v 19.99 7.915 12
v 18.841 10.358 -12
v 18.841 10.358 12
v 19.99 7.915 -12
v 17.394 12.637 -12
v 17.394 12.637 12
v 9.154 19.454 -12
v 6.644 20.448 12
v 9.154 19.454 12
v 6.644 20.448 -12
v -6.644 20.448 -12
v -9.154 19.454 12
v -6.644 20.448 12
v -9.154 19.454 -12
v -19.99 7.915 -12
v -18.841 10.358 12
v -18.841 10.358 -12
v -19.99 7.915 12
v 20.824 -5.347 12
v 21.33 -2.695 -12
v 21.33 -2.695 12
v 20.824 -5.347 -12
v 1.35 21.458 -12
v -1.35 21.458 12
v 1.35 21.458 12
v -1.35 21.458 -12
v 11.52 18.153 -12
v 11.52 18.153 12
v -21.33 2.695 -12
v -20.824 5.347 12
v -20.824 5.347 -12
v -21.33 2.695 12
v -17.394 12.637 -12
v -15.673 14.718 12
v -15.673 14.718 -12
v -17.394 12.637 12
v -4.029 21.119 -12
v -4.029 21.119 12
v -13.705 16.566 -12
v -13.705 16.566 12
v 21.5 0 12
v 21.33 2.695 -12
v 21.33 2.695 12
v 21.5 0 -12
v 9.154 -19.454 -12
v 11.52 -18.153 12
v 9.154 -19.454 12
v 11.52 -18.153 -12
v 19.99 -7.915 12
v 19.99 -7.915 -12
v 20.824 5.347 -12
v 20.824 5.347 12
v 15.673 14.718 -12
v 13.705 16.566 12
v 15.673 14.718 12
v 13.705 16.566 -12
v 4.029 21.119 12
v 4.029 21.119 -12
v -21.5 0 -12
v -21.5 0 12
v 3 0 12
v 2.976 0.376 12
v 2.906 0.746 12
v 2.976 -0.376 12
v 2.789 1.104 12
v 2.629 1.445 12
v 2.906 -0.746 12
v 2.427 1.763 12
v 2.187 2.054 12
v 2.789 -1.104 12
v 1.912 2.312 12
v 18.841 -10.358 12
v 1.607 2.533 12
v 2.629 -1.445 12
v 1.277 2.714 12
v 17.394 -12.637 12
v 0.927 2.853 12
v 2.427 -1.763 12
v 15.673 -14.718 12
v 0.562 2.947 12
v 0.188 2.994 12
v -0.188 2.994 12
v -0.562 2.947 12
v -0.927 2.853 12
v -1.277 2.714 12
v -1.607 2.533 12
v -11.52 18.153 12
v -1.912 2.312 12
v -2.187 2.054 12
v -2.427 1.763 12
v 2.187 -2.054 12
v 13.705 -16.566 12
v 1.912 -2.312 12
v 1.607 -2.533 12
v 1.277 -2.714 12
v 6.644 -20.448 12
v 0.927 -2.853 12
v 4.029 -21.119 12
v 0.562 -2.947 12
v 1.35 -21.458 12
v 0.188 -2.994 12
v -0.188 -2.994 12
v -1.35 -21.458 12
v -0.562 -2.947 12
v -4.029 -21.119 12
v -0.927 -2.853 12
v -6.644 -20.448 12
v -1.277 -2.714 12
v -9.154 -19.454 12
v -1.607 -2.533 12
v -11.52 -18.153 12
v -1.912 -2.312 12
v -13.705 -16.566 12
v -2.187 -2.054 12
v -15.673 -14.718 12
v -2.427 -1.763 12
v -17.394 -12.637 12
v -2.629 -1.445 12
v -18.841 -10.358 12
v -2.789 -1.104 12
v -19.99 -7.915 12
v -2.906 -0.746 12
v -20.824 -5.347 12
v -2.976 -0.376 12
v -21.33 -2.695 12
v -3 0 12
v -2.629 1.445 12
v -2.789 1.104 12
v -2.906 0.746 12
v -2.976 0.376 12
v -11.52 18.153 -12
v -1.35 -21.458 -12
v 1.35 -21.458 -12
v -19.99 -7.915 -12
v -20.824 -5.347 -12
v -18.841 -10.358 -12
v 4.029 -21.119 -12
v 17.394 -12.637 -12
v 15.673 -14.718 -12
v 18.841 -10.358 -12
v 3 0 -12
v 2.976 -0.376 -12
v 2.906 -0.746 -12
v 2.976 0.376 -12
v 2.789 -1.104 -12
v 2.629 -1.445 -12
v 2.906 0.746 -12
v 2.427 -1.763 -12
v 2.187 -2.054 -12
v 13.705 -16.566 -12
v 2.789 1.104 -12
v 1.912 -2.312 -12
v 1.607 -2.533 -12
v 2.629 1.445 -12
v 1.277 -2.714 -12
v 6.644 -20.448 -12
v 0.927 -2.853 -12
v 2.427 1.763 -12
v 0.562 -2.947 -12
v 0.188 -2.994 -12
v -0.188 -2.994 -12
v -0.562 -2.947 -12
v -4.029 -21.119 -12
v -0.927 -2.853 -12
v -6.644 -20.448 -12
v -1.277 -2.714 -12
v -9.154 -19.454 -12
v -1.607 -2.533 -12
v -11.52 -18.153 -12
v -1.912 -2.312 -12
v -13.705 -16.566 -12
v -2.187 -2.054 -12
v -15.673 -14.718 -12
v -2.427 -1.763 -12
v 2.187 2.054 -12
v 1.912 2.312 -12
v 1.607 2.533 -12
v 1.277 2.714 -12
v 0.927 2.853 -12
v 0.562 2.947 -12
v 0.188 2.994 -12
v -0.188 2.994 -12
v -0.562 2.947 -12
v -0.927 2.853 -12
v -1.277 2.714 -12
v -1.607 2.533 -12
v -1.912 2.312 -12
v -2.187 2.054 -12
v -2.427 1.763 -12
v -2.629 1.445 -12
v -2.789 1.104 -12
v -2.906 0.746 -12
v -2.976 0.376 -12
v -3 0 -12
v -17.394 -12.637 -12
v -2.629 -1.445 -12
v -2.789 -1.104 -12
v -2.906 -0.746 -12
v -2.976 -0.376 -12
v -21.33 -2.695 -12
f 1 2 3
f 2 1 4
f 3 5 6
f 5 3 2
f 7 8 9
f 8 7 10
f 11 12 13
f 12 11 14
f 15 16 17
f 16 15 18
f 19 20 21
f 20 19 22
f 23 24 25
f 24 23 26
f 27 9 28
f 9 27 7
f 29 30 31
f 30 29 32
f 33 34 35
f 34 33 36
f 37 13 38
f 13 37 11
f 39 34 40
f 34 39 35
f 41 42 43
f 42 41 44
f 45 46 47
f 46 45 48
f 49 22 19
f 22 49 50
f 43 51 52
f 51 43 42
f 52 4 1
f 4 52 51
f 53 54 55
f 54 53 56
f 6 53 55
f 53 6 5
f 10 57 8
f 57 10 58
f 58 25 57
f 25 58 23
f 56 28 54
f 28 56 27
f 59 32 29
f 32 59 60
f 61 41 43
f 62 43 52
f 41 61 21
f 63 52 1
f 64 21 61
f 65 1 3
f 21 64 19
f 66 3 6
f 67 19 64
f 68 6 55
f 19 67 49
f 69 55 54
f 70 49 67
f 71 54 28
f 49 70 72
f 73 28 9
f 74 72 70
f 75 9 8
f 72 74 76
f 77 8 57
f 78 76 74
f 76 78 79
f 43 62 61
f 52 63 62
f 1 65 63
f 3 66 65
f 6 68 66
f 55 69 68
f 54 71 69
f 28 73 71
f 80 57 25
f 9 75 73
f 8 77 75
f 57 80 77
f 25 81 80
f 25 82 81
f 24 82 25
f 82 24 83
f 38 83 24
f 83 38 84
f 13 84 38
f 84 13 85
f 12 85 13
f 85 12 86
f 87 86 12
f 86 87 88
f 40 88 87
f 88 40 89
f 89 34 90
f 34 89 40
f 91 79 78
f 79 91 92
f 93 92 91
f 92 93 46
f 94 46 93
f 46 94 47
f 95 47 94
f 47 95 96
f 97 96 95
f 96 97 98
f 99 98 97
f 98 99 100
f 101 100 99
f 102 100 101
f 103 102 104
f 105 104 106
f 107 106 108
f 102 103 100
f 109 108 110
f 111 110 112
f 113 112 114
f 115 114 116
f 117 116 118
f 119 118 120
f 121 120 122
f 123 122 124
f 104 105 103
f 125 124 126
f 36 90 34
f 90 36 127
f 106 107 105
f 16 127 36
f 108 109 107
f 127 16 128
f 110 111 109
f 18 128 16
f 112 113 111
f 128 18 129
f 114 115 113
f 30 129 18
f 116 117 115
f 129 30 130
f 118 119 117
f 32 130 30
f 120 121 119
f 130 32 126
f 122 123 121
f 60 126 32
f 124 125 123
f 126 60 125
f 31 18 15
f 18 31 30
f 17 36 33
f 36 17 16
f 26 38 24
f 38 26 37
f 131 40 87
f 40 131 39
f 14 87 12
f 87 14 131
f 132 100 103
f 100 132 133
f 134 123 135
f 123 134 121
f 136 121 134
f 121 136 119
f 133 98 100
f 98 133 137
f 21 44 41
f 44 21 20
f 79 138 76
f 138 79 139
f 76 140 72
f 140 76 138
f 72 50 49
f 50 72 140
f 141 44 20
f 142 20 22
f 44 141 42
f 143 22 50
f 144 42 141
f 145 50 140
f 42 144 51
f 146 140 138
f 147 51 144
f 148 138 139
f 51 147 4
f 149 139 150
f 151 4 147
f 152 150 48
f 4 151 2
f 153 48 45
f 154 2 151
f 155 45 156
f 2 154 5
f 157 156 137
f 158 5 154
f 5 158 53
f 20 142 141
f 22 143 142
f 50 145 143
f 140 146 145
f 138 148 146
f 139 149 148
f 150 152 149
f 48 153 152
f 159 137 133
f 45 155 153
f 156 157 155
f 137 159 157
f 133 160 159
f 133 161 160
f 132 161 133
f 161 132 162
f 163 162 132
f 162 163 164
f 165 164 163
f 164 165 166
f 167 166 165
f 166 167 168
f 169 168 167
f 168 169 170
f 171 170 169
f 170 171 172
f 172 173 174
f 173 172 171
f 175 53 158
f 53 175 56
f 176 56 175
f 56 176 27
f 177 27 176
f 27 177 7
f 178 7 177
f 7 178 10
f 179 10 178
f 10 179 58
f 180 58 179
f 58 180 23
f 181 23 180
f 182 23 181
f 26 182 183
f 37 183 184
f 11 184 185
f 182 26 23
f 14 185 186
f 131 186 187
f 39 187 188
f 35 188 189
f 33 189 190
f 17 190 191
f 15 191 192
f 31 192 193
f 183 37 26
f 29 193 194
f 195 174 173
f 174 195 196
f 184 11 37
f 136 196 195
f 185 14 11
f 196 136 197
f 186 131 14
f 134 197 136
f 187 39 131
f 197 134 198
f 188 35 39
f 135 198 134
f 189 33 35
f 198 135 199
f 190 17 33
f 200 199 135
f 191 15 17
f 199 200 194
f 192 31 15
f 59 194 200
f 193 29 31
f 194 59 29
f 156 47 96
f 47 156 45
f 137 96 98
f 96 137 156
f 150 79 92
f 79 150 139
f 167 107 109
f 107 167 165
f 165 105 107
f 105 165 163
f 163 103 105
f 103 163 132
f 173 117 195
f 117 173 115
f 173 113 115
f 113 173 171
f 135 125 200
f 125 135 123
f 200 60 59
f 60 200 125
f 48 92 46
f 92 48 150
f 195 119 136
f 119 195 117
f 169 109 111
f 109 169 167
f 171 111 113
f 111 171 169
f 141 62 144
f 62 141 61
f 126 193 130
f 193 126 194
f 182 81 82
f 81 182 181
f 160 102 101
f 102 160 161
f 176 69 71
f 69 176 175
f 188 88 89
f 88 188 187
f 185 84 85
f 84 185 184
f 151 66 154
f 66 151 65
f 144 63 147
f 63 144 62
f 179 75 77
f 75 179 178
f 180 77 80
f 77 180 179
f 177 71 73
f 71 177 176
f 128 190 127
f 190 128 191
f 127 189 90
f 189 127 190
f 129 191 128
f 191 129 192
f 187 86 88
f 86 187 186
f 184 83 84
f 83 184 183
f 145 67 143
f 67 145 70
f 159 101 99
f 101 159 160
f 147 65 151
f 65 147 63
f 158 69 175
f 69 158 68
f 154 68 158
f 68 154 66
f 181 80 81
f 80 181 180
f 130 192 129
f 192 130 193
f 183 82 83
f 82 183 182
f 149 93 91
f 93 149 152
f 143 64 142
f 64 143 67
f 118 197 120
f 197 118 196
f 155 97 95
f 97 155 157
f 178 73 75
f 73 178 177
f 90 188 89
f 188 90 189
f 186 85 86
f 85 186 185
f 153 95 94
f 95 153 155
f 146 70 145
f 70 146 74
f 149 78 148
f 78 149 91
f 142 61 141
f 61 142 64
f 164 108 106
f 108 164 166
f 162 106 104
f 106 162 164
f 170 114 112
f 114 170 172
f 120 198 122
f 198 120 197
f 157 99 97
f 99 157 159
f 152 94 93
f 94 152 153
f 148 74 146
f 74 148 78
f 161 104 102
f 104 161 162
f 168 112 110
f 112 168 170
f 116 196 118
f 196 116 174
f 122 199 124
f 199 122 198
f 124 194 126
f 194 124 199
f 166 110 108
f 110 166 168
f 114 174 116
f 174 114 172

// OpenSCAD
$fn = 50;


difference() {
	union() {
		translate(v = [0, 0, -12.0000000000]) {
			cylinder(h = 24, r = 21.5000000000);
		}
	}
	union() {
		translate(v = [0, 0, -100.0000000000]) {
			cylinder(h = 200, r = 3);
		}
	}
}
